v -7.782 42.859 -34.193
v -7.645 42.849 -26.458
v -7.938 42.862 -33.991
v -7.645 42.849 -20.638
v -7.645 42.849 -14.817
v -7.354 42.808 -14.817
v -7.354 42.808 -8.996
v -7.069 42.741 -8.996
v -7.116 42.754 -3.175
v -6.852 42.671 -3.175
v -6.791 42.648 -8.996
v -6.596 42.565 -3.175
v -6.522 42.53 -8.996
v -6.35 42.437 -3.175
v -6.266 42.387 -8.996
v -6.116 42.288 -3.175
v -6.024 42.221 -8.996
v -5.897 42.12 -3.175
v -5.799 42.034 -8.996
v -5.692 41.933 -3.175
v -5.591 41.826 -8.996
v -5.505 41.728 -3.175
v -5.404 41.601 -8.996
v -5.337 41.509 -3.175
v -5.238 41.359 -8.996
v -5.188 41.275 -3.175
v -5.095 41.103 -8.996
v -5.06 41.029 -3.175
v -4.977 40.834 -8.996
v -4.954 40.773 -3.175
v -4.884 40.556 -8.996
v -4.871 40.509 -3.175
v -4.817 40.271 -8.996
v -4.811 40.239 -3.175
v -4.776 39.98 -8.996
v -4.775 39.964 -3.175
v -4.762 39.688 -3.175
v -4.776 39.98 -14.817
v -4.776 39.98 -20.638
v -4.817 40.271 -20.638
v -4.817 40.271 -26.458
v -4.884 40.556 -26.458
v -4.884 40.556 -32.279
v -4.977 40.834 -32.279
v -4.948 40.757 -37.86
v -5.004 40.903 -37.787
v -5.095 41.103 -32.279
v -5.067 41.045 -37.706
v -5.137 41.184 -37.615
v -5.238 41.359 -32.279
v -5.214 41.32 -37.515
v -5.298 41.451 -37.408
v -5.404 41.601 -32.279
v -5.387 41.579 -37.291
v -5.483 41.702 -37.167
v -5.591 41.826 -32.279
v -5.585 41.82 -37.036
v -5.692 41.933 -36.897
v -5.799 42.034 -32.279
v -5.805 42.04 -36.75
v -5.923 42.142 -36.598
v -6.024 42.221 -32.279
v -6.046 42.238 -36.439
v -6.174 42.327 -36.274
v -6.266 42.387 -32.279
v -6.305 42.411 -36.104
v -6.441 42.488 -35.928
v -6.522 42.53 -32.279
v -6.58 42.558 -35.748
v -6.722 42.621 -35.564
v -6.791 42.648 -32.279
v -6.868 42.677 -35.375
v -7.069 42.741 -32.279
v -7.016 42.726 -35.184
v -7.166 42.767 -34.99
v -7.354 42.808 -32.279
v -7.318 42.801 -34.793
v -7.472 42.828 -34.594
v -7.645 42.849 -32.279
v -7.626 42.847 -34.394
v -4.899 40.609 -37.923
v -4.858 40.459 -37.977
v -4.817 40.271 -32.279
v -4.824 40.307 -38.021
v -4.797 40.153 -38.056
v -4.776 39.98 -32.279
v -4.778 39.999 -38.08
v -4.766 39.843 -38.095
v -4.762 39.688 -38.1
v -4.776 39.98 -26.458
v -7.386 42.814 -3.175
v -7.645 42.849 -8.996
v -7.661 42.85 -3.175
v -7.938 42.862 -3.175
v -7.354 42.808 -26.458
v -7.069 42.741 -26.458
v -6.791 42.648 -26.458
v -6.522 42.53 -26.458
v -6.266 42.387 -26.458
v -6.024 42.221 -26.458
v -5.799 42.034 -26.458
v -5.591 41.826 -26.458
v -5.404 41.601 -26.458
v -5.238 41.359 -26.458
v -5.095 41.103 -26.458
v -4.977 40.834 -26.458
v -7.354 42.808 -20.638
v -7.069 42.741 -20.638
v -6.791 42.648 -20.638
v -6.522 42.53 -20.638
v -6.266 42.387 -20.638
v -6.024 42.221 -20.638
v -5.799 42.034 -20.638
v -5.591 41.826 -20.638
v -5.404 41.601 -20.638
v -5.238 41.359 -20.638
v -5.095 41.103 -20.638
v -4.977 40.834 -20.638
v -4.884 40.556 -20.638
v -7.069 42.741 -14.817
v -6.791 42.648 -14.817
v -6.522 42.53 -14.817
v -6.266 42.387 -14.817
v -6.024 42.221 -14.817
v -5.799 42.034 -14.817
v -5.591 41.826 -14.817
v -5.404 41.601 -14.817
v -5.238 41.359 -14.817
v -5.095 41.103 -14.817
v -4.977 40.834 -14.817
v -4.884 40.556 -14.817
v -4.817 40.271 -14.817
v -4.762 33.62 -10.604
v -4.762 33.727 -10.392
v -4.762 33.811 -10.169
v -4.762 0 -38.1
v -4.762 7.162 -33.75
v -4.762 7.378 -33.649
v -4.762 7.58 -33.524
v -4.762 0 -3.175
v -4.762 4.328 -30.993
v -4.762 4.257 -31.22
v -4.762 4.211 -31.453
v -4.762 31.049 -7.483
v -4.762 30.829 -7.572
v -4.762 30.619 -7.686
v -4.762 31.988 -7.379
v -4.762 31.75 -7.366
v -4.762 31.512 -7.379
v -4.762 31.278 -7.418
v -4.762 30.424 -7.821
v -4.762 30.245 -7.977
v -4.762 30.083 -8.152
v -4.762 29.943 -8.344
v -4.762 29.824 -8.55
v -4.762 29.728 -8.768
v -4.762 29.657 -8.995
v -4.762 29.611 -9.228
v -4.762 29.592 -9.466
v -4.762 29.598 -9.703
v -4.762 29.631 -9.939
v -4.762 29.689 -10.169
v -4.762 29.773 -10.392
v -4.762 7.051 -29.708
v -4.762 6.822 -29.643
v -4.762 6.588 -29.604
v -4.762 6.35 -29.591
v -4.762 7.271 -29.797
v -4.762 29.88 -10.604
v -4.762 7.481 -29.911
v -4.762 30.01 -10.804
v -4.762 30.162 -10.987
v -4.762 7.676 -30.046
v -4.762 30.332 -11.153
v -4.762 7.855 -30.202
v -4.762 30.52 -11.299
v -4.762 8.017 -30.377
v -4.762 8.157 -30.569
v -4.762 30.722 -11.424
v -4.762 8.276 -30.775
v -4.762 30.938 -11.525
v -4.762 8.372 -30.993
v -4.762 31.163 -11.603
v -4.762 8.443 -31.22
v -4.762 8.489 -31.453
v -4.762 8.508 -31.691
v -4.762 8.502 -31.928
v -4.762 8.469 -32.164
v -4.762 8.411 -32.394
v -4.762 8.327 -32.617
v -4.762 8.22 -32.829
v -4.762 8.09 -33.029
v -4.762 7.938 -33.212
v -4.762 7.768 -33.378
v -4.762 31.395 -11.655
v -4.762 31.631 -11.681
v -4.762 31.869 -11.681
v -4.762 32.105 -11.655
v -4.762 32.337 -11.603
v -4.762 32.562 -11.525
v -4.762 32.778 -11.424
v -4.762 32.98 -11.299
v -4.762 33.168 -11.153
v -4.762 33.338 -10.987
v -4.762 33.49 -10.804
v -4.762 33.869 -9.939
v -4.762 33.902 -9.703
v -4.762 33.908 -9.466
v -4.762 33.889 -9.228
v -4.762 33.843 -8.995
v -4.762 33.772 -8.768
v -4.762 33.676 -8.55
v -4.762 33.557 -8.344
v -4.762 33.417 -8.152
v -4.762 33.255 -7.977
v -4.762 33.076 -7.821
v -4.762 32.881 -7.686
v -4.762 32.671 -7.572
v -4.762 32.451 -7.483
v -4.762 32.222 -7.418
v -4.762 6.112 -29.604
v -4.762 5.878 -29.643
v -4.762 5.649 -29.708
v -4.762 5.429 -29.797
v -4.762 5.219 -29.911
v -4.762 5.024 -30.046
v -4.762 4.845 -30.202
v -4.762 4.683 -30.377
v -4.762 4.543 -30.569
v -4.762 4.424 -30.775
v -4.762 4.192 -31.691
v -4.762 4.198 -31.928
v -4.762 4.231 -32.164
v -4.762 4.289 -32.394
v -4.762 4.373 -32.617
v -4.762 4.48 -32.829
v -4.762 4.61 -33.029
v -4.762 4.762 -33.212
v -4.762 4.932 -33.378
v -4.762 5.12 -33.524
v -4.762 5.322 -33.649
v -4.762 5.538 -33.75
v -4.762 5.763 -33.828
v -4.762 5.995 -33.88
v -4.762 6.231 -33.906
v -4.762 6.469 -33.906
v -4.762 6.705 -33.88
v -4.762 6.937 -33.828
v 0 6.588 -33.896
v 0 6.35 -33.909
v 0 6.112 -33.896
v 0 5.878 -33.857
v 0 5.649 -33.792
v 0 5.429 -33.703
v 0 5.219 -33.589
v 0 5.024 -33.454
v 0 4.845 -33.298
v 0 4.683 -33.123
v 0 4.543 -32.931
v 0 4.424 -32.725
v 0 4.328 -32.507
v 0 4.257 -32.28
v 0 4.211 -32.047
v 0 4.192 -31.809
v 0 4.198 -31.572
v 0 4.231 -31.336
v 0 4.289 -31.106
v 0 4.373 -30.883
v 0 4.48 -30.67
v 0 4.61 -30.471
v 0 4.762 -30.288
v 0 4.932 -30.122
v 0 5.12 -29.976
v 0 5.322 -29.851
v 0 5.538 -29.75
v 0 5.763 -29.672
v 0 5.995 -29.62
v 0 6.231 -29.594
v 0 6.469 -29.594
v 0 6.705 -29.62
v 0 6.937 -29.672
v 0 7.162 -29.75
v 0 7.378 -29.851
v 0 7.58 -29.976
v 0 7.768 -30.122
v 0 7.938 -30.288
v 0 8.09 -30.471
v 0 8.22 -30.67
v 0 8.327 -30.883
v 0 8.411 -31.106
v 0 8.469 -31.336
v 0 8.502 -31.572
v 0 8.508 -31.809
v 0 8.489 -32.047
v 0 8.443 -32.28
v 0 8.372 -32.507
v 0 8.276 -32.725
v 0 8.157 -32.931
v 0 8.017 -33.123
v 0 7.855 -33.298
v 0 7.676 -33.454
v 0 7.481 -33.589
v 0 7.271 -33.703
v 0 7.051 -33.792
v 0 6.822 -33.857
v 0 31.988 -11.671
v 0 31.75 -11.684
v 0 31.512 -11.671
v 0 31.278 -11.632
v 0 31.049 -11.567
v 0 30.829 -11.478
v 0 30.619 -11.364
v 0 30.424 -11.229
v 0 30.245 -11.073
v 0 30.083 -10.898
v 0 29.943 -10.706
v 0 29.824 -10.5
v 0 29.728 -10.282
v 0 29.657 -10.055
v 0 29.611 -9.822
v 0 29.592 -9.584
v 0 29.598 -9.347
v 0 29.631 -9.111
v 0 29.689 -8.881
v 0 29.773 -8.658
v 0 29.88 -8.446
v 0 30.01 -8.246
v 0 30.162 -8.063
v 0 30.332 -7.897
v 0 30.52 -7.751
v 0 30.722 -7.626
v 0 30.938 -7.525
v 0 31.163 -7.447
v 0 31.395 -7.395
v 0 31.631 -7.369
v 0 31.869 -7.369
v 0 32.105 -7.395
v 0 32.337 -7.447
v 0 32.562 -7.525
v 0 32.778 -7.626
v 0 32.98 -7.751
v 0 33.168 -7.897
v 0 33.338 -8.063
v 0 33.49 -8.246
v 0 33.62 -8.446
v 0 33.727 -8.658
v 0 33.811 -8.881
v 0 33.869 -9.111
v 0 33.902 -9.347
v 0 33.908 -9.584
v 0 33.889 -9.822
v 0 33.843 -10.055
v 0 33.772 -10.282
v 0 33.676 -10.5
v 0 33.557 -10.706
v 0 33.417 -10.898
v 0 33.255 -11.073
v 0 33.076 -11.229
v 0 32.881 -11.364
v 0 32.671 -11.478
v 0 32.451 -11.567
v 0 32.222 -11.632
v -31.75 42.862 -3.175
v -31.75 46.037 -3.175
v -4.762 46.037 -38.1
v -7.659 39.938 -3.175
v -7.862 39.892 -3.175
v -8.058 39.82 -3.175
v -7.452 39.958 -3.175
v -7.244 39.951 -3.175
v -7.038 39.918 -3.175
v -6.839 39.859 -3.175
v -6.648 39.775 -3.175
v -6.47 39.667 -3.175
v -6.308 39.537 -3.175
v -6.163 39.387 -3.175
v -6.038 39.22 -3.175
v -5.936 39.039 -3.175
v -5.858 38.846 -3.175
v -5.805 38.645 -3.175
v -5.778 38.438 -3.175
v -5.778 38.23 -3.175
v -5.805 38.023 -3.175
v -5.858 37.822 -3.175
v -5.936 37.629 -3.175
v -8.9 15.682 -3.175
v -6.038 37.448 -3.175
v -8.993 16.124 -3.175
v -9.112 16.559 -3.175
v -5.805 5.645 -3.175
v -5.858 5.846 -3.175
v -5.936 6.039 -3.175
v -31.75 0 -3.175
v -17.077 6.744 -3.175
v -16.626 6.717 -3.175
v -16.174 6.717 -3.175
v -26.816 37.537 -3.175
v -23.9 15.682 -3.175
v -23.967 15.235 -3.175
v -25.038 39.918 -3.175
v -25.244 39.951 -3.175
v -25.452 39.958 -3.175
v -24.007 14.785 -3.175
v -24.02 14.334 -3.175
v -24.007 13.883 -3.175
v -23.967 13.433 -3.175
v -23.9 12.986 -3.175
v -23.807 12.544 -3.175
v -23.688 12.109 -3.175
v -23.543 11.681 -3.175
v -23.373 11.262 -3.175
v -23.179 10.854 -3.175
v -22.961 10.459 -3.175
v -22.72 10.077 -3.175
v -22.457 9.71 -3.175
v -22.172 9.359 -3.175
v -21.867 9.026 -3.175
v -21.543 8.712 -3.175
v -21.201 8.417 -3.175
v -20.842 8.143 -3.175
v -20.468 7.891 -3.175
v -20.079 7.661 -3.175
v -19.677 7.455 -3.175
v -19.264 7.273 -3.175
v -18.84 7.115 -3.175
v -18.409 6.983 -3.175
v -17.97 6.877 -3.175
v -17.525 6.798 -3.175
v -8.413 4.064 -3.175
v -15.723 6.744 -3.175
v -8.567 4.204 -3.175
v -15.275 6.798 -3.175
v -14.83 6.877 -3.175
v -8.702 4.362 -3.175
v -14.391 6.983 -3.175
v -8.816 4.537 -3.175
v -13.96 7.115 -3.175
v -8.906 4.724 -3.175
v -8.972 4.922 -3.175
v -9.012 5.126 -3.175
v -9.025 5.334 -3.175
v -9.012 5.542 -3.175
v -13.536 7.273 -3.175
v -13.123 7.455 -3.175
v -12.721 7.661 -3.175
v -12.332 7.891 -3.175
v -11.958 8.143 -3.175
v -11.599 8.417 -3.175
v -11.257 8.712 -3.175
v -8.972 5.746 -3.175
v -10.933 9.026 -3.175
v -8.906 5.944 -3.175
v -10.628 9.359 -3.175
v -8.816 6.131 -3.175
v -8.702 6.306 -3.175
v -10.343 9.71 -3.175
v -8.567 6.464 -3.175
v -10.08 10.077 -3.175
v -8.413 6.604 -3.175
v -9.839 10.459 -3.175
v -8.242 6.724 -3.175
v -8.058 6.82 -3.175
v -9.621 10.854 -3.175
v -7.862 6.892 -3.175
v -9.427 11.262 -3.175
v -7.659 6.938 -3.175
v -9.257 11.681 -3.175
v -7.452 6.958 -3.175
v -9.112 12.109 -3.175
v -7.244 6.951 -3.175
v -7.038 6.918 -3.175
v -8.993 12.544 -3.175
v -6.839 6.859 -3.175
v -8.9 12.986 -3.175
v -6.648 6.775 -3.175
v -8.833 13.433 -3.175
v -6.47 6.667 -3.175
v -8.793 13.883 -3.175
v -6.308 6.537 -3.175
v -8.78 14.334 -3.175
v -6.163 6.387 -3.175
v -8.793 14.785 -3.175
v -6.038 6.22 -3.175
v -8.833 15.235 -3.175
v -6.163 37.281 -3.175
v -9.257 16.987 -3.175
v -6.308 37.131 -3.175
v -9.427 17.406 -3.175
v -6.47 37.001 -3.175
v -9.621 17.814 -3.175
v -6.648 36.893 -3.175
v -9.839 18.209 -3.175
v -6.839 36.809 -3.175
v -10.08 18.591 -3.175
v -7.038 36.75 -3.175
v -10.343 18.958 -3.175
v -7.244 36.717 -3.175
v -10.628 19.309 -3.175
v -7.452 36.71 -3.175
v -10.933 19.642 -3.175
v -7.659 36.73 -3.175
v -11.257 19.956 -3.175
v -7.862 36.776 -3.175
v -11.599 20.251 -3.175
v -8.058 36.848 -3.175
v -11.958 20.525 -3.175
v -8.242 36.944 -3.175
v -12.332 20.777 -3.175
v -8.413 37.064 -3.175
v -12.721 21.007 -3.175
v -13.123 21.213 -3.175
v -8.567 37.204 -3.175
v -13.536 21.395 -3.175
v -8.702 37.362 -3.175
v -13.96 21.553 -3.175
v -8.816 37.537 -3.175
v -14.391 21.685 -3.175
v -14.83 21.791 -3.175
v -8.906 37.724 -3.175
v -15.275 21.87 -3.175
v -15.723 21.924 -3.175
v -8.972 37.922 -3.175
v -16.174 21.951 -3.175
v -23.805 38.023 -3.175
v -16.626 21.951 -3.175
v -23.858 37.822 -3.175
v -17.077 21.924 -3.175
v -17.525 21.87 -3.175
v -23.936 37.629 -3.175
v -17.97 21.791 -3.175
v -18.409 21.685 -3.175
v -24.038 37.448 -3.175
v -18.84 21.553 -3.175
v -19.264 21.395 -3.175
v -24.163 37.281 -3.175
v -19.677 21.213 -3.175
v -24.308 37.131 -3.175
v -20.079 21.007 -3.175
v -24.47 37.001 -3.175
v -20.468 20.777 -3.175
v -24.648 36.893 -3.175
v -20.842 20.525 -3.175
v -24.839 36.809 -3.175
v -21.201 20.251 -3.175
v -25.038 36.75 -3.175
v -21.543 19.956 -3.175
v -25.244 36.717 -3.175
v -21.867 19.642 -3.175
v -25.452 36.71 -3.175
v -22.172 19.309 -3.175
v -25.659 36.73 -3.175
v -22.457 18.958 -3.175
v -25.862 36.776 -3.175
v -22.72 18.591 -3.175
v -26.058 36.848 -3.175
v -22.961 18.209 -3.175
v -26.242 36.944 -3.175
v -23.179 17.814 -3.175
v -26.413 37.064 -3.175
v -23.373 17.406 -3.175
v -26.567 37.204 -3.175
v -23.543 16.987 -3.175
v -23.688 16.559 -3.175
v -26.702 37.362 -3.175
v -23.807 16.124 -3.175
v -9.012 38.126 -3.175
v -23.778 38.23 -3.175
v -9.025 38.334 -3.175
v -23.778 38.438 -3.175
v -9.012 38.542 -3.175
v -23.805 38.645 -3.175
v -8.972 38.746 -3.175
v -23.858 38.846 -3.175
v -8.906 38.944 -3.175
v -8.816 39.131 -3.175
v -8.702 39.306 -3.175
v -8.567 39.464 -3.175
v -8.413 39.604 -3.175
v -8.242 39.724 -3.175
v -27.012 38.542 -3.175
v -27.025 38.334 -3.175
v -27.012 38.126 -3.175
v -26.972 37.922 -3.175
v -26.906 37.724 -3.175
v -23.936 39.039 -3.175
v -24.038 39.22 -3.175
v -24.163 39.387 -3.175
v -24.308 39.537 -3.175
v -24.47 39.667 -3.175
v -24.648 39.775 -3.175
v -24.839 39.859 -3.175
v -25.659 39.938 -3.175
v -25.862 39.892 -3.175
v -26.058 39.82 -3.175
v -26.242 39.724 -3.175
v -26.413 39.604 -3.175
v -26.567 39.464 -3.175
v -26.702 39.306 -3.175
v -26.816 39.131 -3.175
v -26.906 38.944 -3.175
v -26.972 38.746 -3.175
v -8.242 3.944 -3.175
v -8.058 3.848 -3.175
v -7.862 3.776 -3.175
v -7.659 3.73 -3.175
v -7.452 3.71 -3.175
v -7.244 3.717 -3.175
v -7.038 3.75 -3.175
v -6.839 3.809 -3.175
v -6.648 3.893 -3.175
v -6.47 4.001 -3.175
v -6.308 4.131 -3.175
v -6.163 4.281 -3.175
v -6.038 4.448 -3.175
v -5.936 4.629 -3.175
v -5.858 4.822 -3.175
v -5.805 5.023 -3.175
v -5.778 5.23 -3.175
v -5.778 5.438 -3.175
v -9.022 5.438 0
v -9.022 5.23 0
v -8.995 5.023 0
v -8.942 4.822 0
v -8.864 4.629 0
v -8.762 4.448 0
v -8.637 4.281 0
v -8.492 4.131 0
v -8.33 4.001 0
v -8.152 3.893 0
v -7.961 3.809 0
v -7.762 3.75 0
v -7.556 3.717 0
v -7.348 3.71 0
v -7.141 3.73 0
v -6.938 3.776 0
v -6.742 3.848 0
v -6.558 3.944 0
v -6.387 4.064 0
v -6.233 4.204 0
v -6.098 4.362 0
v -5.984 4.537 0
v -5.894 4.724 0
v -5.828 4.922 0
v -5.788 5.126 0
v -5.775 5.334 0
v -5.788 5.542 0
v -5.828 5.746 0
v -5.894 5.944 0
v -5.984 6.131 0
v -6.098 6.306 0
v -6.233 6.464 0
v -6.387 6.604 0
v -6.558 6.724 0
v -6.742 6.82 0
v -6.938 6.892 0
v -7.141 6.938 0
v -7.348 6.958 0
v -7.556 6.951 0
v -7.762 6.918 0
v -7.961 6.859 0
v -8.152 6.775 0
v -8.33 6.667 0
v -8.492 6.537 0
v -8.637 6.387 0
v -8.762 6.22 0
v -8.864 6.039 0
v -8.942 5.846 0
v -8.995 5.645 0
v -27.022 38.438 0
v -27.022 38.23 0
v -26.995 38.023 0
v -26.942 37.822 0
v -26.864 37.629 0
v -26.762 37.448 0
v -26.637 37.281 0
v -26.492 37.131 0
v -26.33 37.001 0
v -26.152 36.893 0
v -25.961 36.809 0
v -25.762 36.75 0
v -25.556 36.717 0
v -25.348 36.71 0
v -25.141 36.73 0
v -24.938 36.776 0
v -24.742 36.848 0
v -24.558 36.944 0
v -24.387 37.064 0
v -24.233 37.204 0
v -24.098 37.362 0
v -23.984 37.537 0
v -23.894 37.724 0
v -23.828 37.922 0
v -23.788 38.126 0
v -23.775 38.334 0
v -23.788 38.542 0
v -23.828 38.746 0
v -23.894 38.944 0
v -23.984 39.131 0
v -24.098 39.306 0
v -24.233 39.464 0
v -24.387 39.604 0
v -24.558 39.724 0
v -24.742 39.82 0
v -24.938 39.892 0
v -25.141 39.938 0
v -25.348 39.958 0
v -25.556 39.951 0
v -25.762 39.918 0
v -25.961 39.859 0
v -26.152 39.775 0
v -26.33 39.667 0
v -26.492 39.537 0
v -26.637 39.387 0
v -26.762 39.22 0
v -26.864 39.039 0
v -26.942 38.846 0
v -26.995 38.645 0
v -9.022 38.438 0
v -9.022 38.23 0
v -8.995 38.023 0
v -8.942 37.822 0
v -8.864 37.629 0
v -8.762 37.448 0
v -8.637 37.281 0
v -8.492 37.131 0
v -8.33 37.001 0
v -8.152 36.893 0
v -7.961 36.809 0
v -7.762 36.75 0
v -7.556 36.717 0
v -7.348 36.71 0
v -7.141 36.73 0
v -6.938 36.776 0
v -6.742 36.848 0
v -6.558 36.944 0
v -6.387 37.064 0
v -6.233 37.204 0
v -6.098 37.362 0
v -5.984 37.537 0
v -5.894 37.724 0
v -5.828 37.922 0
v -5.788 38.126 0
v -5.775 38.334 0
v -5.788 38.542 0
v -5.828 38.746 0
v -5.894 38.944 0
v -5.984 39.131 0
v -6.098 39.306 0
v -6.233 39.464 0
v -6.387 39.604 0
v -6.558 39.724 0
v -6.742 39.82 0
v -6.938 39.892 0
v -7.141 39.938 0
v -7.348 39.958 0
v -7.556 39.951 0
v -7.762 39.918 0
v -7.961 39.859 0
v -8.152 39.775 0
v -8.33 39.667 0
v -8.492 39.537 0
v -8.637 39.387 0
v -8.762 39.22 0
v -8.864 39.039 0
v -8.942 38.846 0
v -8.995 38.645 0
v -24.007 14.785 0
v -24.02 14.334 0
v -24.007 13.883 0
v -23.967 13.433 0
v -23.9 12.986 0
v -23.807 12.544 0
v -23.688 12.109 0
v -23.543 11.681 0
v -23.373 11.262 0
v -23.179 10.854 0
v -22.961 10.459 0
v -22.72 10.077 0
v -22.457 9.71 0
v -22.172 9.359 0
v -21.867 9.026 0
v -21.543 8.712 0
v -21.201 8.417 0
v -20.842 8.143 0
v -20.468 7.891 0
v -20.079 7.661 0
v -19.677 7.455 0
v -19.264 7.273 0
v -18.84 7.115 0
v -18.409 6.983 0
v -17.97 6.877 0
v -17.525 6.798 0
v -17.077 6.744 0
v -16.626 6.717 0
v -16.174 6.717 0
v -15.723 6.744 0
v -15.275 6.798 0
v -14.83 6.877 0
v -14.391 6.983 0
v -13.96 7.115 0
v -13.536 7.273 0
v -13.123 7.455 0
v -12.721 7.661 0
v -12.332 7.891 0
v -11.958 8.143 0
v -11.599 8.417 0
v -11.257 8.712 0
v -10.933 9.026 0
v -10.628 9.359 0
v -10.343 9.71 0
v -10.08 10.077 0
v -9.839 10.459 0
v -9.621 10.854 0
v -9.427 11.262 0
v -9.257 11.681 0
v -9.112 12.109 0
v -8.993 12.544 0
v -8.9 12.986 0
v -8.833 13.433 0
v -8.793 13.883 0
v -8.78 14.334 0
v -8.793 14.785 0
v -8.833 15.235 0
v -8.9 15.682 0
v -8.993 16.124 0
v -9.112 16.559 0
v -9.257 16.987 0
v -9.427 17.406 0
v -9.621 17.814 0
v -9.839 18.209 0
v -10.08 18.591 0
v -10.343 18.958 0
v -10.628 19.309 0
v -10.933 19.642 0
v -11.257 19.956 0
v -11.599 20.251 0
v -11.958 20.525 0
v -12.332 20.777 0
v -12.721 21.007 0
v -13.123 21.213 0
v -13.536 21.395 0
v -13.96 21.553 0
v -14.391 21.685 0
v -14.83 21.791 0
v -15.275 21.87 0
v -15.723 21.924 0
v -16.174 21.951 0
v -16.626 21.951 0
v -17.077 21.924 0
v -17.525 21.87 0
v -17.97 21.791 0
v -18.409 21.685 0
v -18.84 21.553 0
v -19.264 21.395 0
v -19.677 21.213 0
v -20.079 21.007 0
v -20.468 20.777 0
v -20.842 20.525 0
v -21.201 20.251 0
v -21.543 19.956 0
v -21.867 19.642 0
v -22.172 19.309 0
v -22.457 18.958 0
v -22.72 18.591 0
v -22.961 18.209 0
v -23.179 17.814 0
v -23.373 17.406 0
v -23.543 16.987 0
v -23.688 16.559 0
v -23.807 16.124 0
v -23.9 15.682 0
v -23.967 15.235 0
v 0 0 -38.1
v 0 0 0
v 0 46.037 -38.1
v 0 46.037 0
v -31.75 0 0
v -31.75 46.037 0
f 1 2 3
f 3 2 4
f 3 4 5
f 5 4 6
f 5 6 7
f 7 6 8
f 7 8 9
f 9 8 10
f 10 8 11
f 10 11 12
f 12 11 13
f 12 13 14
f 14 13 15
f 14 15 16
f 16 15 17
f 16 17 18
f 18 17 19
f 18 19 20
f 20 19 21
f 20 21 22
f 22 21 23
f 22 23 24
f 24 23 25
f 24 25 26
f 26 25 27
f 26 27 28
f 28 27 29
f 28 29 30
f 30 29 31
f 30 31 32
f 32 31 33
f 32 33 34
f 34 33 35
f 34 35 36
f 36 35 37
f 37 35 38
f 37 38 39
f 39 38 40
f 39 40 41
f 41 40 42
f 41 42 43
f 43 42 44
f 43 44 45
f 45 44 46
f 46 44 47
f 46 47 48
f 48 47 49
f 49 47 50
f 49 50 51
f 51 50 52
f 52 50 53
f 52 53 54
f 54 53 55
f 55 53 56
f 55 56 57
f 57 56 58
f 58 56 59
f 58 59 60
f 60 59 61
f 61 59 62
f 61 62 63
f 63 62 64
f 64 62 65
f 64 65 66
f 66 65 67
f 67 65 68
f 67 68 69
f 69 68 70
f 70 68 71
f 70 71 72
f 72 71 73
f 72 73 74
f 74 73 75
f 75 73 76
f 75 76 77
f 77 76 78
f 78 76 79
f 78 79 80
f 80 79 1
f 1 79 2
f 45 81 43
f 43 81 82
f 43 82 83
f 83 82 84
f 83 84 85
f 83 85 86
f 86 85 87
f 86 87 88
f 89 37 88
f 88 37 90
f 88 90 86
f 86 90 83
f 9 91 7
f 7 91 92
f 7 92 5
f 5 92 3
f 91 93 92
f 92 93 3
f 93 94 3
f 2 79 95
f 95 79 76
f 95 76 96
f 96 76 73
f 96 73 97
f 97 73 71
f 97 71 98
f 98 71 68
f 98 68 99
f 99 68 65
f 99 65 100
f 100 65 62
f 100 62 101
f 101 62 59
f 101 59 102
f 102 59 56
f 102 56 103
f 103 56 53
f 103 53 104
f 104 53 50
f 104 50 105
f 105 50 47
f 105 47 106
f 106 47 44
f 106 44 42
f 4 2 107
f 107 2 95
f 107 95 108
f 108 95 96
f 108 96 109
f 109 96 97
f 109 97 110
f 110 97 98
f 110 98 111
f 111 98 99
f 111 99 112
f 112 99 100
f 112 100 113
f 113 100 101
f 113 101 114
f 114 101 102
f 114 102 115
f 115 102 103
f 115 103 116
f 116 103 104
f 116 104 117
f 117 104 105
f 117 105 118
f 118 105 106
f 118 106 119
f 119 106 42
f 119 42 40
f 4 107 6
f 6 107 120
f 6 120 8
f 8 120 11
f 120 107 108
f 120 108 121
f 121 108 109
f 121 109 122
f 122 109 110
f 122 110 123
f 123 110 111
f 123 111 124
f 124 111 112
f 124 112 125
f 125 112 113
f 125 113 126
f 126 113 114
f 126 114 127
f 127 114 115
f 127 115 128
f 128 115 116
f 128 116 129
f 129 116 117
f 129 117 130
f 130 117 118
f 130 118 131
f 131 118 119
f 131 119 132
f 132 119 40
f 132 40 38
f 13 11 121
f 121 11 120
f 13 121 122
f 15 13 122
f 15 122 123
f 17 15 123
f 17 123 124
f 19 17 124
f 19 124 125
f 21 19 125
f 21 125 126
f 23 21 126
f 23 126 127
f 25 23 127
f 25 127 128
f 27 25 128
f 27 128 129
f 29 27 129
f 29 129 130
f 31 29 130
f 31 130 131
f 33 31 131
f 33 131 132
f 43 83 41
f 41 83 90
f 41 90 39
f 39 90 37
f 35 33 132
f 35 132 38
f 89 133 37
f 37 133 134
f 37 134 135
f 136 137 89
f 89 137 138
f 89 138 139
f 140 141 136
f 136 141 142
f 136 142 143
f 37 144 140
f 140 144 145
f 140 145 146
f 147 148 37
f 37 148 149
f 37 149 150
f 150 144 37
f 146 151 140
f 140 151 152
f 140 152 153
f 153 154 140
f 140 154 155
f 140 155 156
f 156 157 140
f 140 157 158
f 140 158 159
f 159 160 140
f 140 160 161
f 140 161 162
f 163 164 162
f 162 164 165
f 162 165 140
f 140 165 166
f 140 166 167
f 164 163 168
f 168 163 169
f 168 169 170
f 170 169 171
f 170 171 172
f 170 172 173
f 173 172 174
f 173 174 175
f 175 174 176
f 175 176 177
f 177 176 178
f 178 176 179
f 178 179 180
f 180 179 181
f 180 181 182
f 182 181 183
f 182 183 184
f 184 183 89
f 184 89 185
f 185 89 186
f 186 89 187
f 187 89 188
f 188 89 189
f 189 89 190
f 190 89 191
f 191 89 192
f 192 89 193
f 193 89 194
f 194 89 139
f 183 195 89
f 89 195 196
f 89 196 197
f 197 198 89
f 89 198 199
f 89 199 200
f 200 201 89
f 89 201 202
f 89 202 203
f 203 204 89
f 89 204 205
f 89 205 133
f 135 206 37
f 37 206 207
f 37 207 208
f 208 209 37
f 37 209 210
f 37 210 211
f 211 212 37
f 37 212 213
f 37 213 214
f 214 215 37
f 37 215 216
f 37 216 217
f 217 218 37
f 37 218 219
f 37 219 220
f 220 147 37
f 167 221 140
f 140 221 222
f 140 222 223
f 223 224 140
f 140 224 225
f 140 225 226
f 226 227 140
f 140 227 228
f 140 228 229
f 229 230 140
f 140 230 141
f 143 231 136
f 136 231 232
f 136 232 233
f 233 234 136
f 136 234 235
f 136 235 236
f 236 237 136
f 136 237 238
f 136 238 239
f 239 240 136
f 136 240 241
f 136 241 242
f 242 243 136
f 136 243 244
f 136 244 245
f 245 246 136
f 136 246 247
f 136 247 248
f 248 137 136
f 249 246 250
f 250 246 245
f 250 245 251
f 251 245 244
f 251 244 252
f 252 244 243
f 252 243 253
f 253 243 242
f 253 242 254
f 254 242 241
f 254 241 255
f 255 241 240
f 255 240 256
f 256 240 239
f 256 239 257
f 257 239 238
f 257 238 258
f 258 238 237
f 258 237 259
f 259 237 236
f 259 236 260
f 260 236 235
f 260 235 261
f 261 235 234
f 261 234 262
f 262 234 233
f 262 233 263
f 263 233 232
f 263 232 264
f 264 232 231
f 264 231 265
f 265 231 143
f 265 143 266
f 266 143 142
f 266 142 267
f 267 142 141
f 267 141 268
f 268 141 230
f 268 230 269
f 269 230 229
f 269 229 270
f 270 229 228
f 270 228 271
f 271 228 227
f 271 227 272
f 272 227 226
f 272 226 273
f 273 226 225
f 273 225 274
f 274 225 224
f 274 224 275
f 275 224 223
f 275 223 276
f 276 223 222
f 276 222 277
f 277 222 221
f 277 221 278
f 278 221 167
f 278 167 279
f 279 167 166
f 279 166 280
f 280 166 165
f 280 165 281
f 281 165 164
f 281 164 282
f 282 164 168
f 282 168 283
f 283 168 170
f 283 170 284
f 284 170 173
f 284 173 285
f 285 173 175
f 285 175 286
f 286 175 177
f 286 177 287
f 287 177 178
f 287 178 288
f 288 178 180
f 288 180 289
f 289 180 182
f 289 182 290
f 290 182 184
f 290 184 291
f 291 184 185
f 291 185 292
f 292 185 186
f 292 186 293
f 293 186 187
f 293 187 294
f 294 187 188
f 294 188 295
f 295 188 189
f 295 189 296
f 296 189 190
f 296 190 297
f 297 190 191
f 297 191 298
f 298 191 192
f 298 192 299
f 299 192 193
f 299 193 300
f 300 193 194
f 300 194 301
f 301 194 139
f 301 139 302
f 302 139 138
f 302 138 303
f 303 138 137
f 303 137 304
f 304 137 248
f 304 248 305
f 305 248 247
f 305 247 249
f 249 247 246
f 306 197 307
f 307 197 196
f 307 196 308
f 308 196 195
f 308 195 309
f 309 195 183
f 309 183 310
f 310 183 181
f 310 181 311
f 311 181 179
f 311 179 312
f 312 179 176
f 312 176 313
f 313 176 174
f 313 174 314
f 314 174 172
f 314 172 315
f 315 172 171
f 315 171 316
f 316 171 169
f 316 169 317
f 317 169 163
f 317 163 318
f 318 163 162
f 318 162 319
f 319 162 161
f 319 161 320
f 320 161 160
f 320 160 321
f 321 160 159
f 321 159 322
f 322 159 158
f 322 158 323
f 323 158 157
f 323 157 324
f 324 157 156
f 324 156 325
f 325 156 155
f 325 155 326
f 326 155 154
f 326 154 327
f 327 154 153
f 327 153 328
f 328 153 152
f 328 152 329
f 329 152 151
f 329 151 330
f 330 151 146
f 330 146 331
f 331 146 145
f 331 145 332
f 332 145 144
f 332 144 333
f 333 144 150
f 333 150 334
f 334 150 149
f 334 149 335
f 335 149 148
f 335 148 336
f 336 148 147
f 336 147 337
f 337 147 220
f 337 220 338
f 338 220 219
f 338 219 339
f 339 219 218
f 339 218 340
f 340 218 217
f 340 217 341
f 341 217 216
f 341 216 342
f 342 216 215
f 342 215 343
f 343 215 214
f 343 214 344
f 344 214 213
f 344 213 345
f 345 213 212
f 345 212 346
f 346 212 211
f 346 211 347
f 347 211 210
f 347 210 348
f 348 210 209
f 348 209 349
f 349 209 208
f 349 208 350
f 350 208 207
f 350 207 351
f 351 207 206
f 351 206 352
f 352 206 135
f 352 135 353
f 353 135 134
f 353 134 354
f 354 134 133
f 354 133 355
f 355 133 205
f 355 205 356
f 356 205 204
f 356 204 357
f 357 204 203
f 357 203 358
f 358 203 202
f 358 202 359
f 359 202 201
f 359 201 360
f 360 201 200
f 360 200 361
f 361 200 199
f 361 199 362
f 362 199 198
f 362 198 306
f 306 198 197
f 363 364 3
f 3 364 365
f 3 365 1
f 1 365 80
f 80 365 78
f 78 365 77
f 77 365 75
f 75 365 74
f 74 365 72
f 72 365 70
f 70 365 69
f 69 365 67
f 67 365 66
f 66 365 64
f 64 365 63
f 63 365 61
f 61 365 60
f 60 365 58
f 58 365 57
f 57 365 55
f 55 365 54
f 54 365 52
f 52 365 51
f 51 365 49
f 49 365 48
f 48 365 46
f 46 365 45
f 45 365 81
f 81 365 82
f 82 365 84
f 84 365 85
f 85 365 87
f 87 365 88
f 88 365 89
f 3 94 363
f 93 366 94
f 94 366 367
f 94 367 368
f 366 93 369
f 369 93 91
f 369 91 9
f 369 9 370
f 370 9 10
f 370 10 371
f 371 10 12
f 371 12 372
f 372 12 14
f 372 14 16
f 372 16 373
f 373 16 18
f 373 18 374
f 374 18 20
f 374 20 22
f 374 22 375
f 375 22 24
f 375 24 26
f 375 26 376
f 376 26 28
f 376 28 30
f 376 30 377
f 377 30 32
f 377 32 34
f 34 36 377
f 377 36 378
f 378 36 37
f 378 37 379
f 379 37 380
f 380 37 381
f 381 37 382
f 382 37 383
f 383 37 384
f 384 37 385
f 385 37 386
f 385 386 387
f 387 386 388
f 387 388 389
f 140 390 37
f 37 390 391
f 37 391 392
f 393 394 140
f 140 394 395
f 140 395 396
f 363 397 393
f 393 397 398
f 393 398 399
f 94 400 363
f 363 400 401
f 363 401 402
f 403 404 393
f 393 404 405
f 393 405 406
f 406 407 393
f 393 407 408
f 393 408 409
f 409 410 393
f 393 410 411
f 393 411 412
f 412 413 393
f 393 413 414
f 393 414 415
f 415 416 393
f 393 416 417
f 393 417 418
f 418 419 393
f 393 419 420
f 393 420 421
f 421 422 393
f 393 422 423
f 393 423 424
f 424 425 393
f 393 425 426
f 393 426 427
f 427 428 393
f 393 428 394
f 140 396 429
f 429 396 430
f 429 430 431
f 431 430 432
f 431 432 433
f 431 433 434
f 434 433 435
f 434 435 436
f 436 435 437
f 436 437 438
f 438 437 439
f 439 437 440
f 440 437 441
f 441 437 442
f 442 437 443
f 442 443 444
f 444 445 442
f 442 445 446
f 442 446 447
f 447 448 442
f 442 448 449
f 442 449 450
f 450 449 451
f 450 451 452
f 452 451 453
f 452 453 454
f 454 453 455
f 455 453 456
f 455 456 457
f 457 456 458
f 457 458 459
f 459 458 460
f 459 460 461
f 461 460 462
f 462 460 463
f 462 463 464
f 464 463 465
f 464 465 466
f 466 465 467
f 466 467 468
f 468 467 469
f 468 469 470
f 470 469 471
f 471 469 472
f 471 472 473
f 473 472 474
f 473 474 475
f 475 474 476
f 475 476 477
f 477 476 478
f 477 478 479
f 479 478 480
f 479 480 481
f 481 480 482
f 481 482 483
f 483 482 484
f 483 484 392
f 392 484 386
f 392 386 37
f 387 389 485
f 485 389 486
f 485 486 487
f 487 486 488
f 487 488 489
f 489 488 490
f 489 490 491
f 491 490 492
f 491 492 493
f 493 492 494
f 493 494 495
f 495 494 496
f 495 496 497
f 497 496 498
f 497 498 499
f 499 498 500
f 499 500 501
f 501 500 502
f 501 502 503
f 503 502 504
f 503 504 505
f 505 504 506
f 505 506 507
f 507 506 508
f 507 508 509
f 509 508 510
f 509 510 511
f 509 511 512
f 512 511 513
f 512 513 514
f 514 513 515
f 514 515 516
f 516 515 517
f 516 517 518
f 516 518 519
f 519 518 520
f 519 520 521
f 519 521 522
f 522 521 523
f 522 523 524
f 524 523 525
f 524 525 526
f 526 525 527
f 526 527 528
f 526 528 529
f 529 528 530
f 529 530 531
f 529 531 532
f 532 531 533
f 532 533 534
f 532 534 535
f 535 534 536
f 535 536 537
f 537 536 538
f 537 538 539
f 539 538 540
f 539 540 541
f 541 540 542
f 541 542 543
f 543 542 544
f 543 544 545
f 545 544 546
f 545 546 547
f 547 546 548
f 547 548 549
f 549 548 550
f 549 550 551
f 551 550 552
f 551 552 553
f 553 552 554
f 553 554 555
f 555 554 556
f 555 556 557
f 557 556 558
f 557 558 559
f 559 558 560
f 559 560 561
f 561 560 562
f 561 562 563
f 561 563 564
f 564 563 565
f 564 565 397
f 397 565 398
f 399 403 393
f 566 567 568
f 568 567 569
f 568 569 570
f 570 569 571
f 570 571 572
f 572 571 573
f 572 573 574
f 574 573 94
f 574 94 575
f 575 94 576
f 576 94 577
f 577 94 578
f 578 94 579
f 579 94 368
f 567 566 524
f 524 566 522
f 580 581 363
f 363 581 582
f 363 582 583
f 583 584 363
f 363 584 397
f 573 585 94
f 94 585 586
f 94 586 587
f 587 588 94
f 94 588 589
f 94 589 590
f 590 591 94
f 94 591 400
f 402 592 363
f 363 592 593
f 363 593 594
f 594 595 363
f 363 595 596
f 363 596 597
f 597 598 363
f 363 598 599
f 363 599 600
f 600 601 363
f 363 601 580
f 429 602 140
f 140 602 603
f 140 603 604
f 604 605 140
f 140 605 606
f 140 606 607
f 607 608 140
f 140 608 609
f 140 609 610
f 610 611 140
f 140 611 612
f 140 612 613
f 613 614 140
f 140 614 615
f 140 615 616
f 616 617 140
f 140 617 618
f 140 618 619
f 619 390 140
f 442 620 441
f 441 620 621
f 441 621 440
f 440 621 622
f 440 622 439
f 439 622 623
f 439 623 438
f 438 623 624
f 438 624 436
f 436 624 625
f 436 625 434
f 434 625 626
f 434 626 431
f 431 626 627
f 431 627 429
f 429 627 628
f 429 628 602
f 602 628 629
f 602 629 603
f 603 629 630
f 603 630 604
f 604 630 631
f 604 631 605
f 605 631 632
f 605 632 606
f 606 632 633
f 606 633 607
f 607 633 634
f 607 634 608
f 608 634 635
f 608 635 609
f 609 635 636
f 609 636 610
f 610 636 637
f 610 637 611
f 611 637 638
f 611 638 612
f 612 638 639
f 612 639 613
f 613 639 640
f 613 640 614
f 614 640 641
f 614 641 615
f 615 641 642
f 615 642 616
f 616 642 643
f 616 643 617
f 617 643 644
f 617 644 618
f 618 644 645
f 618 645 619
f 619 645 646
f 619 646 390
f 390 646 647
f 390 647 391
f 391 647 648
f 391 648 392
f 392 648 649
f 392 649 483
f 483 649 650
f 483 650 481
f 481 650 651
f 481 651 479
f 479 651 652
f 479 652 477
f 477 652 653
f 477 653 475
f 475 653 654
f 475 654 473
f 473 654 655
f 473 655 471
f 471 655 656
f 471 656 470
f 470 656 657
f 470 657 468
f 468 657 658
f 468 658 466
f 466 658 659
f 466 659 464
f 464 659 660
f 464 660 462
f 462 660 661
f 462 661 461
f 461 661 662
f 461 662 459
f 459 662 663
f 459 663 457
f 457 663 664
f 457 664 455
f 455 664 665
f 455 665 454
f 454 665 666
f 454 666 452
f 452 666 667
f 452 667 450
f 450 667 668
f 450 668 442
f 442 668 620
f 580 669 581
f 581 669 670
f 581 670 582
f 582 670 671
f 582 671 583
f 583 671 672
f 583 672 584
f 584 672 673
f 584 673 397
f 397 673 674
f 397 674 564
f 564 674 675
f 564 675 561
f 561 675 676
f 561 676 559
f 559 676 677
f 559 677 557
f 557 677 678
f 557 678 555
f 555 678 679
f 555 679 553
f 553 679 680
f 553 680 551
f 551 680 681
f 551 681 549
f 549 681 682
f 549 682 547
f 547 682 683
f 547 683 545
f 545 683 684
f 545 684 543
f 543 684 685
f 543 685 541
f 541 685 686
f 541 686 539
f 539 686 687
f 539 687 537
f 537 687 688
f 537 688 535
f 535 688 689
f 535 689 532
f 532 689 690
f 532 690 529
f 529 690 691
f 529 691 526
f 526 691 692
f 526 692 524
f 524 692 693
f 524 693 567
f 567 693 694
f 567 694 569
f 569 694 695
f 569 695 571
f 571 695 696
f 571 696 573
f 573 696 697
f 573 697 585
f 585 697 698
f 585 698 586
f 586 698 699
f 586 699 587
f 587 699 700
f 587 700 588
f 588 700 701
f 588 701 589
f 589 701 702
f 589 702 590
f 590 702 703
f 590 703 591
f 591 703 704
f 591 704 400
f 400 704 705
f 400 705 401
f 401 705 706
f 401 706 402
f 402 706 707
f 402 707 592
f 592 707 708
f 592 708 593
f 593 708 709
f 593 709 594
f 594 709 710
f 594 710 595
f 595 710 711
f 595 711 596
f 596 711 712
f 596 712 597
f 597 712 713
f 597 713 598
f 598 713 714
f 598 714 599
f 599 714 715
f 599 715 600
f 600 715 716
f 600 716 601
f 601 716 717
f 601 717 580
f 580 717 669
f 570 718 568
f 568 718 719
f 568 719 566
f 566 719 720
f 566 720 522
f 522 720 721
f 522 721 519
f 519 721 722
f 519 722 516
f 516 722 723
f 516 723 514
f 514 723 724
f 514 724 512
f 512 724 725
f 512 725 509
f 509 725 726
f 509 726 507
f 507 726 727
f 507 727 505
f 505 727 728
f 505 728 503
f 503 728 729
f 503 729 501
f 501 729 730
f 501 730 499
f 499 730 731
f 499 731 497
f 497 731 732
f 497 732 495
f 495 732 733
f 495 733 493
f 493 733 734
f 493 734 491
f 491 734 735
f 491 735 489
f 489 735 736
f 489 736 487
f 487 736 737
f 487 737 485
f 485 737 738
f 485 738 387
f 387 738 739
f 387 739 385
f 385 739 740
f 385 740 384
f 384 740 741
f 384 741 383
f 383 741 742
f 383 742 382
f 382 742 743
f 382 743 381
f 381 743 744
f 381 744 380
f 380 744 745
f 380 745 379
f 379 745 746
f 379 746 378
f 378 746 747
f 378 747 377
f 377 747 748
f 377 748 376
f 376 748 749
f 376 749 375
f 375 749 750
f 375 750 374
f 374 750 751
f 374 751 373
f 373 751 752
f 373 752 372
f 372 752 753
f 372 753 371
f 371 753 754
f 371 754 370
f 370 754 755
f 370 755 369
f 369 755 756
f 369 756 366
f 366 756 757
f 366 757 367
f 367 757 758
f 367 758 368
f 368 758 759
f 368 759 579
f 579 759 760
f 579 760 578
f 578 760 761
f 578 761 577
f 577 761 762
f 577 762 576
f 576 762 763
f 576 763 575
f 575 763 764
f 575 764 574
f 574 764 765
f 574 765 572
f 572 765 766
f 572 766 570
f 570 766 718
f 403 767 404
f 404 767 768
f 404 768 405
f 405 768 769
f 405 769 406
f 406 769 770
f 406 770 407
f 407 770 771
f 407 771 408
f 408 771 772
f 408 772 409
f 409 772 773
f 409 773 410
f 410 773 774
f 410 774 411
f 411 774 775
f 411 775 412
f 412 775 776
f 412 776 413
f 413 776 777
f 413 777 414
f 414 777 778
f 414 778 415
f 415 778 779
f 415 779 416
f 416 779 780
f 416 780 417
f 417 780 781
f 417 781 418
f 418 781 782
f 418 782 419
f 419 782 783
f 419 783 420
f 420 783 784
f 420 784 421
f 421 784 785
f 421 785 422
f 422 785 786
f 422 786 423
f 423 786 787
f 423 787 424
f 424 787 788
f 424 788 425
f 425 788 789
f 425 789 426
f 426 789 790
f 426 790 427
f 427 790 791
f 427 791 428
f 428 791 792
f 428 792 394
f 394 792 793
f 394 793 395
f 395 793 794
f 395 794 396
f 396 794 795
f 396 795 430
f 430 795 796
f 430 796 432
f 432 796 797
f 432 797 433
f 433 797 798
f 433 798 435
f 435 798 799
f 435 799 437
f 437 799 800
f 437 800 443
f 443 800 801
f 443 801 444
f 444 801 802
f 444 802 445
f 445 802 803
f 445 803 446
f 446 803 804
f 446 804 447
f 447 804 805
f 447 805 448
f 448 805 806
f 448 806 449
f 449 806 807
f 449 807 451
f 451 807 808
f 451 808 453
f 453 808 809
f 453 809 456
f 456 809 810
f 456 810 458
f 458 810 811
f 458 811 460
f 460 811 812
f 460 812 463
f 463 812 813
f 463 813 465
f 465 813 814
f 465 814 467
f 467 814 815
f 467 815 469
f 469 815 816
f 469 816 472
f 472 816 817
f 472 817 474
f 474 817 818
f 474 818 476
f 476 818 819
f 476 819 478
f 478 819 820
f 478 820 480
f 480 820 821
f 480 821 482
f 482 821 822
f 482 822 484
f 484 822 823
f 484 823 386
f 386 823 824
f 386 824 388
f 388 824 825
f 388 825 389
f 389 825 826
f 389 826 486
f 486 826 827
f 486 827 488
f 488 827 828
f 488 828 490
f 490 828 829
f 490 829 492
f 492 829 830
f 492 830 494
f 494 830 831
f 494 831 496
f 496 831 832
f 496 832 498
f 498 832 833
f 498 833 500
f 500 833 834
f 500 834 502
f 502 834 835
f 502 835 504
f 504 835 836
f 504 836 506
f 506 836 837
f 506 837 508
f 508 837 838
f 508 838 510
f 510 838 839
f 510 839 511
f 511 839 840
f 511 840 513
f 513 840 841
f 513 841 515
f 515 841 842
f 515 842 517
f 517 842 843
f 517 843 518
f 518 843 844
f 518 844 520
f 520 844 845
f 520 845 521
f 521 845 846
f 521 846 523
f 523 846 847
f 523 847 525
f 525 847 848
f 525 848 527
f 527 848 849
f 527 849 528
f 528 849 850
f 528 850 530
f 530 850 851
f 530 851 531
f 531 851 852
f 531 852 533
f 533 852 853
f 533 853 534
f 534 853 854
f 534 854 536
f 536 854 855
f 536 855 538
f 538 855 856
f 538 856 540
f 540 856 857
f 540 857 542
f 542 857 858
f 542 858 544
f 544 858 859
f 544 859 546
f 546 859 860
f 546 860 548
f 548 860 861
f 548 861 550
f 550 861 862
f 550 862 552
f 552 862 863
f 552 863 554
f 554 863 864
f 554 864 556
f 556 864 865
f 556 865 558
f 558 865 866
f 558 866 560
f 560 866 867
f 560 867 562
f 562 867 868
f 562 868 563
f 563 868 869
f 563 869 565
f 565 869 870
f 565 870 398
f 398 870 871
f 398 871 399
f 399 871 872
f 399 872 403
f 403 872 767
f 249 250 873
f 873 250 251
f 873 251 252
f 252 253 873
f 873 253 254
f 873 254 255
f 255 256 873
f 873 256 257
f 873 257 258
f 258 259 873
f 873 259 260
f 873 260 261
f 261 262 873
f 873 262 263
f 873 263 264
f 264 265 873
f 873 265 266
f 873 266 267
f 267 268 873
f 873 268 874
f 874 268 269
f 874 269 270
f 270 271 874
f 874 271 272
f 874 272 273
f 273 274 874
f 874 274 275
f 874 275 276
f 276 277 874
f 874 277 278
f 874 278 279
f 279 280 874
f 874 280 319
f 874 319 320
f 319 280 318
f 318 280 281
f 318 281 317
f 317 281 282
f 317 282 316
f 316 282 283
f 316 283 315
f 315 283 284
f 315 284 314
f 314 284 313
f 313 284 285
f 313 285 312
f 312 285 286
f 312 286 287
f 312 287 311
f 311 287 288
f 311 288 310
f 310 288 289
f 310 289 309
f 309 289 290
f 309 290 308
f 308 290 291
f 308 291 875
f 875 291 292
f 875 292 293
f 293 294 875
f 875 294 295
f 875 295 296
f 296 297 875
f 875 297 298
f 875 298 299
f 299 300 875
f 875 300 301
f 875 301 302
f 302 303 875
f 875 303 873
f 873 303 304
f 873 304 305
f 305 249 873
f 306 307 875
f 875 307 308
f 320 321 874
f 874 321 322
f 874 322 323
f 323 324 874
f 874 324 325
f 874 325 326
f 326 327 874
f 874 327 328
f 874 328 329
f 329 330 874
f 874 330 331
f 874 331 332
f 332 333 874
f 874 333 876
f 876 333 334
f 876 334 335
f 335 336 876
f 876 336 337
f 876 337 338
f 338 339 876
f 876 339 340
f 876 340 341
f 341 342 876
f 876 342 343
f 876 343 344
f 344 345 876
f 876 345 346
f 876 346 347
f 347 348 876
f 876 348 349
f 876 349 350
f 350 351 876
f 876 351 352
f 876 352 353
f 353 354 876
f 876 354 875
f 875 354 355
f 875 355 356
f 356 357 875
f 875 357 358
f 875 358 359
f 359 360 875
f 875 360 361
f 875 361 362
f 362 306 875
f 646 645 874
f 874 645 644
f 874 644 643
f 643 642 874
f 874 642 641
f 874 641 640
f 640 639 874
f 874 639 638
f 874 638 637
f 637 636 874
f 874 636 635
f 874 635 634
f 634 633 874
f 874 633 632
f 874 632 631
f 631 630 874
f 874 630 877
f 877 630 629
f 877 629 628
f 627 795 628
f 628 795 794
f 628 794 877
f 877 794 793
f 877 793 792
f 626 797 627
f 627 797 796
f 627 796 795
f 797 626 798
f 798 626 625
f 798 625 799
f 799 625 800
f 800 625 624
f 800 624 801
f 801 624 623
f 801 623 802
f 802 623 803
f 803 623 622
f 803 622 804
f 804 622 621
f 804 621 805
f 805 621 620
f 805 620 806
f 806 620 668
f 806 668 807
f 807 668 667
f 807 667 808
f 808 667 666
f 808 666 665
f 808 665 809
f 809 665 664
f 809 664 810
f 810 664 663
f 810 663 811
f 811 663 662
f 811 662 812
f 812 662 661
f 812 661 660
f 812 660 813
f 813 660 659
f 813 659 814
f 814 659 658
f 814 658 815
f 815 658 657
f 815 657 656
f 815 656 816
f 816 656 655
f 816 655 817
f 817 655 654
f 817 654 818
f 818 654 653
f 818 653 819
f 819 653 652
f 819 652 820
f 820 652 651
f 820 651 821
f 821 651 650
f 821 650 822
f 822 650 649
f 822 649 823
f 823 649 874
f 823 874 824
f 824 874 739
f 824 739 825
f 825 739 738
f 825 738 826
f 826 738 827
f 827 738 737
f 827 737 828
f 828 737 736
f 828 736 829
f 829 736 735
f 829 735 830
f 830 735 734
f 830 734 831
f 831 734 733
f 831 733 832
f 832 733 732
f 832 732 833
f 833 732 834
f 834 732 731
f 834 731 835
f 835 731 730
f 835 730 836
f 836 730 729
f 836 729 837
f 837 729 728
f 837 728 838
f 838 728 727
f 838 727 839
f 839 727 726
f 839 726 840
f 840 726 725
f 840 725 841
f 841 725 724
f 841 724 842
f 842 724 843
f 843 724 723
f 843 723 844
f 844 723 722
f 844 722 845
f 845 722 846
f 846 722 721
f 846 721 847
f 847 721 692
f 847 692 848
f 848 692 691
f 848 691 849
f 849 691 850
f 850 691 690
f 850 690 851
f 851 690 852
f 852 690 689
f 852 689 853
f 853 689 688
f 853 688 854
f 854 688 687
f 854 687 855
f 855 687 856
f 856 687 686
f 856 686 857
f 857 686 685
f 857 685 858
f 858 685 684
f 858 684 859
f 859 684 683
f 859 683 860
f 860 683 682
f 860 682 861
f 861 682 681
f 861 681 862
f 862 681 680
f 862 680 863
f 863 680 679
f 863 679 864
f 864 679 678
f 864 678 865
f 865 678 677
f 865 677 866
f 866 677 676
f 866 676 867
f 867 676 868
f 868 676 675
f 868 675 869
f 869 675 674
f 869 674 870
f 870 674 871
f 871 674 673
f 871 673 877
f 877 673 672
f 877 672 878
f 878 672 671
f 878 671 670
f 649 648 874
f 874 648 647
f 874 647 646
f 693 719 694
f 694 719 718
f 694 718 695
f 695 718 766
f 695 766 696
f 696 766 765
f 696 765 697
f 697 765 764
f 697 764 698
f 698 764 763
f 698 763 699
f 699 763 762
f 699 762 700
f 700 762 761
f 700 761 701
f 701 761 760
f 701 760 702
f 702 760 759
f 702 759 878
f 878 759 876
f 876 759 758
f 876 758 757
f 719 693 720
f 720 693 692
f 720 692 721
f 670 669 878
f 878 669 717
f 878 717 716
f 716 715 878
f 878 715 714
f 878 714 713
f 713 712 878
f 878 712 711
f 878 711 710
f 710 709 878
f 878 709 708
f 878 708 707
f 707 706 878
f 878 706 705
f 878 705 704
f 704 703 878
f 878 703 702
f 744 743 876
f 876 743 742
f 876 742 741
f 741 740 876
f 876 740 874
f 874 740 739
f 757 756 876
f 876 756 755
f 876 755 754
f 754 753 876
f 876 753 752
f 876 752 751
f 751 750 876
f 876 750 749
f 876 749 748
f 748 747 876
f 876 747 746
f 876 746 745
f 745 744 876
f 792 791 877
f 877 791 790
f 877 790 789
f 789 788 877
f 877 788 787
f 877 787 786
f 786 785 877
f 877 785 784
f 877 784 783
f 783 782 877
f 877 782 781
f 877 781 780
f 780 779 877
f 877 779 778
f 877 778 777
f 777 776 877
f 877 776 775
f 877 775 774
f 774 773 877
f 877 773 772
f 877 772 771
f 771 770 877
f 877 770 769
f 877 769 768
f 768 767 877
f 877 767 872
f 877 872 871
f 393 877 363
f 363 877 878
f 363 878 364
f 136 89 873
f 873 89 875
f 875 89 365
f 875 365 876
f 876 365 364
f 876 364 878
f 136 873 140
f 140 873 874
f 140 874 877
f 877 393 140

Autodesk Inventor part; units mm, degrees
ref_plane "YZ Plane" through (0, 0, 0) normal (1, 0, 0) x (0, 1, 0)
ref_plane "XZ Plane" through (0, 0, 0) normal (0, 1, 0) x (-1, 0, 0)
ref_plane "XY Plane" through (0, 0, 0) normal (0, 0, 1) x (1, 0, 0)
sketch "Sketch1" plane through (0, 0, 0) normal (0, 1, 0) x (-1, 0, 0)
  line L0 (0, 0) -> (31.75, 0)
  line L1 (31.75, 0) -> (31.75, -3.175)
  line L2 (31.75, -3.175) -> (4.7625, -3.175)
  line L3 (4.7625, -3.175) -> (4.7625, -38.1)
  line L4 (4.7625, -38.1) -> (0, -38.1)
  line L5 (0, 0) -> (0, -38.1)
  point P0 (31.75, -1.5875)
  dimension "d1" = 3.175
  dimension "d2" = 31.75
  dimension "d3" = 38.1
  dimension "d4" = 4.7625
extrude "Extrusion1" add sketch "Sketch1" along normal blind 46.0375
sketch "Sketch2" plane through (-31.75, 0, 0) normal (0, 0, 1) x (1, 0, 0)
  line L0 (0, 0) -> (0, 46.0375) projected
  line L1 (31.75, 0) -> (31.75, 46.0375) projected
  line L2 (6.35, 5.334) -> (24.35, 5.334) construction
  line L3 (24.35, 5.334) -> (24.35, 38.334) construction
  line L4 (24.35, 38.334) -> (6.35, 38.334) construction
  line L5 (6.35, 38.334) -> (6.35, 5.334) construction
  circle A0 centre (24.35, 5.334) radius 1.625
  circle A1 centre (6.35, 38.334) radius 1.625
  circle A2 centre (24.35, 38.334) radius 1.625
  line L6 (0, 0) -> (31.75, 0) projected
  circle A3 centre (15.35, 14.334) radius 7.62
  dimension "d24" = 3.25
  dimension "d25" = 3.25
  dimension "d26" = 3.25
  dimension "d27" = 33
  dimension "d38" = 15.24
  dimension "d53" = 6.35
  dimension "d54" = 9
  dimension "d55" = 18
  dimension "d56" = 5.334
  dimension "d57" = 9
extrude "Extrusion2" cut sketch "Sketch2" against normal blind 46.0375
sketch "Sketch3" plane through (0, 46.0375, 0) normal (0, 1, 0) x (1, 0, 0)
  line L0 (0, 38.1) -> (-4.7625, 38.1) projected
  line L1 (-4.7625, 38.1) -> (-4.7625, 3.175) projected
  line L2 (-4.7625, 3.175) -> (-31.75, 3.175) projected
  line L3 (-31.75, 3.175) -> (-31.75, 0) projected
  line L4 (-31.75, 0) -> (0, 0) projected
  line L5 (0, 0) -> (0, 38.1) projected
  line L6 (-31.75, 3.175) -> (-4.7625, 38.1)
extrude "Extrusion3" add sketch "Sketch3" against normal blind 3.175 contours L1 L2 L6
sketch "Sketch4" plane through (-4.7625, 0, -38.1) normal (-1, 0, 0) x (0, 0, 1)
  circle A0 centre (28.575, 31.75) radius 2.159
  circle A1 centre (6.35, 6.35) radius 2.159
  line L0 (0, 0) -> (0, 42.8625) projected
  line L1 (0, 0) -> (34.925, 0) projected
  line L2 (34.925, 42.8625) -> (0, 42.8625) projected
  line L3 (34.925, 0) -> (34.925, 42.8625) projected
  circle A2 centre (28.575, 31.75) radius 4.3656
  point P0 (38.1, 0)
  dimension "d41" = 4.318
  dimension "d42" = 4.318
  dimension "d43" = 6.35
  dimension "d44" = 6.35
  dimension "d45" = 11.1125
  dimension "d47" = 6.35
  dimension "d50" = 8.7312
extrude "Extrusion4" cut sketch "Sketch4" against normal through all contours A0 | A1
fillet "Fillet1" radius 3.175 1 edges at (-4.7625, 42.8625, -20.6375)
properties part number "Motor Mount V1_3DPrint"
